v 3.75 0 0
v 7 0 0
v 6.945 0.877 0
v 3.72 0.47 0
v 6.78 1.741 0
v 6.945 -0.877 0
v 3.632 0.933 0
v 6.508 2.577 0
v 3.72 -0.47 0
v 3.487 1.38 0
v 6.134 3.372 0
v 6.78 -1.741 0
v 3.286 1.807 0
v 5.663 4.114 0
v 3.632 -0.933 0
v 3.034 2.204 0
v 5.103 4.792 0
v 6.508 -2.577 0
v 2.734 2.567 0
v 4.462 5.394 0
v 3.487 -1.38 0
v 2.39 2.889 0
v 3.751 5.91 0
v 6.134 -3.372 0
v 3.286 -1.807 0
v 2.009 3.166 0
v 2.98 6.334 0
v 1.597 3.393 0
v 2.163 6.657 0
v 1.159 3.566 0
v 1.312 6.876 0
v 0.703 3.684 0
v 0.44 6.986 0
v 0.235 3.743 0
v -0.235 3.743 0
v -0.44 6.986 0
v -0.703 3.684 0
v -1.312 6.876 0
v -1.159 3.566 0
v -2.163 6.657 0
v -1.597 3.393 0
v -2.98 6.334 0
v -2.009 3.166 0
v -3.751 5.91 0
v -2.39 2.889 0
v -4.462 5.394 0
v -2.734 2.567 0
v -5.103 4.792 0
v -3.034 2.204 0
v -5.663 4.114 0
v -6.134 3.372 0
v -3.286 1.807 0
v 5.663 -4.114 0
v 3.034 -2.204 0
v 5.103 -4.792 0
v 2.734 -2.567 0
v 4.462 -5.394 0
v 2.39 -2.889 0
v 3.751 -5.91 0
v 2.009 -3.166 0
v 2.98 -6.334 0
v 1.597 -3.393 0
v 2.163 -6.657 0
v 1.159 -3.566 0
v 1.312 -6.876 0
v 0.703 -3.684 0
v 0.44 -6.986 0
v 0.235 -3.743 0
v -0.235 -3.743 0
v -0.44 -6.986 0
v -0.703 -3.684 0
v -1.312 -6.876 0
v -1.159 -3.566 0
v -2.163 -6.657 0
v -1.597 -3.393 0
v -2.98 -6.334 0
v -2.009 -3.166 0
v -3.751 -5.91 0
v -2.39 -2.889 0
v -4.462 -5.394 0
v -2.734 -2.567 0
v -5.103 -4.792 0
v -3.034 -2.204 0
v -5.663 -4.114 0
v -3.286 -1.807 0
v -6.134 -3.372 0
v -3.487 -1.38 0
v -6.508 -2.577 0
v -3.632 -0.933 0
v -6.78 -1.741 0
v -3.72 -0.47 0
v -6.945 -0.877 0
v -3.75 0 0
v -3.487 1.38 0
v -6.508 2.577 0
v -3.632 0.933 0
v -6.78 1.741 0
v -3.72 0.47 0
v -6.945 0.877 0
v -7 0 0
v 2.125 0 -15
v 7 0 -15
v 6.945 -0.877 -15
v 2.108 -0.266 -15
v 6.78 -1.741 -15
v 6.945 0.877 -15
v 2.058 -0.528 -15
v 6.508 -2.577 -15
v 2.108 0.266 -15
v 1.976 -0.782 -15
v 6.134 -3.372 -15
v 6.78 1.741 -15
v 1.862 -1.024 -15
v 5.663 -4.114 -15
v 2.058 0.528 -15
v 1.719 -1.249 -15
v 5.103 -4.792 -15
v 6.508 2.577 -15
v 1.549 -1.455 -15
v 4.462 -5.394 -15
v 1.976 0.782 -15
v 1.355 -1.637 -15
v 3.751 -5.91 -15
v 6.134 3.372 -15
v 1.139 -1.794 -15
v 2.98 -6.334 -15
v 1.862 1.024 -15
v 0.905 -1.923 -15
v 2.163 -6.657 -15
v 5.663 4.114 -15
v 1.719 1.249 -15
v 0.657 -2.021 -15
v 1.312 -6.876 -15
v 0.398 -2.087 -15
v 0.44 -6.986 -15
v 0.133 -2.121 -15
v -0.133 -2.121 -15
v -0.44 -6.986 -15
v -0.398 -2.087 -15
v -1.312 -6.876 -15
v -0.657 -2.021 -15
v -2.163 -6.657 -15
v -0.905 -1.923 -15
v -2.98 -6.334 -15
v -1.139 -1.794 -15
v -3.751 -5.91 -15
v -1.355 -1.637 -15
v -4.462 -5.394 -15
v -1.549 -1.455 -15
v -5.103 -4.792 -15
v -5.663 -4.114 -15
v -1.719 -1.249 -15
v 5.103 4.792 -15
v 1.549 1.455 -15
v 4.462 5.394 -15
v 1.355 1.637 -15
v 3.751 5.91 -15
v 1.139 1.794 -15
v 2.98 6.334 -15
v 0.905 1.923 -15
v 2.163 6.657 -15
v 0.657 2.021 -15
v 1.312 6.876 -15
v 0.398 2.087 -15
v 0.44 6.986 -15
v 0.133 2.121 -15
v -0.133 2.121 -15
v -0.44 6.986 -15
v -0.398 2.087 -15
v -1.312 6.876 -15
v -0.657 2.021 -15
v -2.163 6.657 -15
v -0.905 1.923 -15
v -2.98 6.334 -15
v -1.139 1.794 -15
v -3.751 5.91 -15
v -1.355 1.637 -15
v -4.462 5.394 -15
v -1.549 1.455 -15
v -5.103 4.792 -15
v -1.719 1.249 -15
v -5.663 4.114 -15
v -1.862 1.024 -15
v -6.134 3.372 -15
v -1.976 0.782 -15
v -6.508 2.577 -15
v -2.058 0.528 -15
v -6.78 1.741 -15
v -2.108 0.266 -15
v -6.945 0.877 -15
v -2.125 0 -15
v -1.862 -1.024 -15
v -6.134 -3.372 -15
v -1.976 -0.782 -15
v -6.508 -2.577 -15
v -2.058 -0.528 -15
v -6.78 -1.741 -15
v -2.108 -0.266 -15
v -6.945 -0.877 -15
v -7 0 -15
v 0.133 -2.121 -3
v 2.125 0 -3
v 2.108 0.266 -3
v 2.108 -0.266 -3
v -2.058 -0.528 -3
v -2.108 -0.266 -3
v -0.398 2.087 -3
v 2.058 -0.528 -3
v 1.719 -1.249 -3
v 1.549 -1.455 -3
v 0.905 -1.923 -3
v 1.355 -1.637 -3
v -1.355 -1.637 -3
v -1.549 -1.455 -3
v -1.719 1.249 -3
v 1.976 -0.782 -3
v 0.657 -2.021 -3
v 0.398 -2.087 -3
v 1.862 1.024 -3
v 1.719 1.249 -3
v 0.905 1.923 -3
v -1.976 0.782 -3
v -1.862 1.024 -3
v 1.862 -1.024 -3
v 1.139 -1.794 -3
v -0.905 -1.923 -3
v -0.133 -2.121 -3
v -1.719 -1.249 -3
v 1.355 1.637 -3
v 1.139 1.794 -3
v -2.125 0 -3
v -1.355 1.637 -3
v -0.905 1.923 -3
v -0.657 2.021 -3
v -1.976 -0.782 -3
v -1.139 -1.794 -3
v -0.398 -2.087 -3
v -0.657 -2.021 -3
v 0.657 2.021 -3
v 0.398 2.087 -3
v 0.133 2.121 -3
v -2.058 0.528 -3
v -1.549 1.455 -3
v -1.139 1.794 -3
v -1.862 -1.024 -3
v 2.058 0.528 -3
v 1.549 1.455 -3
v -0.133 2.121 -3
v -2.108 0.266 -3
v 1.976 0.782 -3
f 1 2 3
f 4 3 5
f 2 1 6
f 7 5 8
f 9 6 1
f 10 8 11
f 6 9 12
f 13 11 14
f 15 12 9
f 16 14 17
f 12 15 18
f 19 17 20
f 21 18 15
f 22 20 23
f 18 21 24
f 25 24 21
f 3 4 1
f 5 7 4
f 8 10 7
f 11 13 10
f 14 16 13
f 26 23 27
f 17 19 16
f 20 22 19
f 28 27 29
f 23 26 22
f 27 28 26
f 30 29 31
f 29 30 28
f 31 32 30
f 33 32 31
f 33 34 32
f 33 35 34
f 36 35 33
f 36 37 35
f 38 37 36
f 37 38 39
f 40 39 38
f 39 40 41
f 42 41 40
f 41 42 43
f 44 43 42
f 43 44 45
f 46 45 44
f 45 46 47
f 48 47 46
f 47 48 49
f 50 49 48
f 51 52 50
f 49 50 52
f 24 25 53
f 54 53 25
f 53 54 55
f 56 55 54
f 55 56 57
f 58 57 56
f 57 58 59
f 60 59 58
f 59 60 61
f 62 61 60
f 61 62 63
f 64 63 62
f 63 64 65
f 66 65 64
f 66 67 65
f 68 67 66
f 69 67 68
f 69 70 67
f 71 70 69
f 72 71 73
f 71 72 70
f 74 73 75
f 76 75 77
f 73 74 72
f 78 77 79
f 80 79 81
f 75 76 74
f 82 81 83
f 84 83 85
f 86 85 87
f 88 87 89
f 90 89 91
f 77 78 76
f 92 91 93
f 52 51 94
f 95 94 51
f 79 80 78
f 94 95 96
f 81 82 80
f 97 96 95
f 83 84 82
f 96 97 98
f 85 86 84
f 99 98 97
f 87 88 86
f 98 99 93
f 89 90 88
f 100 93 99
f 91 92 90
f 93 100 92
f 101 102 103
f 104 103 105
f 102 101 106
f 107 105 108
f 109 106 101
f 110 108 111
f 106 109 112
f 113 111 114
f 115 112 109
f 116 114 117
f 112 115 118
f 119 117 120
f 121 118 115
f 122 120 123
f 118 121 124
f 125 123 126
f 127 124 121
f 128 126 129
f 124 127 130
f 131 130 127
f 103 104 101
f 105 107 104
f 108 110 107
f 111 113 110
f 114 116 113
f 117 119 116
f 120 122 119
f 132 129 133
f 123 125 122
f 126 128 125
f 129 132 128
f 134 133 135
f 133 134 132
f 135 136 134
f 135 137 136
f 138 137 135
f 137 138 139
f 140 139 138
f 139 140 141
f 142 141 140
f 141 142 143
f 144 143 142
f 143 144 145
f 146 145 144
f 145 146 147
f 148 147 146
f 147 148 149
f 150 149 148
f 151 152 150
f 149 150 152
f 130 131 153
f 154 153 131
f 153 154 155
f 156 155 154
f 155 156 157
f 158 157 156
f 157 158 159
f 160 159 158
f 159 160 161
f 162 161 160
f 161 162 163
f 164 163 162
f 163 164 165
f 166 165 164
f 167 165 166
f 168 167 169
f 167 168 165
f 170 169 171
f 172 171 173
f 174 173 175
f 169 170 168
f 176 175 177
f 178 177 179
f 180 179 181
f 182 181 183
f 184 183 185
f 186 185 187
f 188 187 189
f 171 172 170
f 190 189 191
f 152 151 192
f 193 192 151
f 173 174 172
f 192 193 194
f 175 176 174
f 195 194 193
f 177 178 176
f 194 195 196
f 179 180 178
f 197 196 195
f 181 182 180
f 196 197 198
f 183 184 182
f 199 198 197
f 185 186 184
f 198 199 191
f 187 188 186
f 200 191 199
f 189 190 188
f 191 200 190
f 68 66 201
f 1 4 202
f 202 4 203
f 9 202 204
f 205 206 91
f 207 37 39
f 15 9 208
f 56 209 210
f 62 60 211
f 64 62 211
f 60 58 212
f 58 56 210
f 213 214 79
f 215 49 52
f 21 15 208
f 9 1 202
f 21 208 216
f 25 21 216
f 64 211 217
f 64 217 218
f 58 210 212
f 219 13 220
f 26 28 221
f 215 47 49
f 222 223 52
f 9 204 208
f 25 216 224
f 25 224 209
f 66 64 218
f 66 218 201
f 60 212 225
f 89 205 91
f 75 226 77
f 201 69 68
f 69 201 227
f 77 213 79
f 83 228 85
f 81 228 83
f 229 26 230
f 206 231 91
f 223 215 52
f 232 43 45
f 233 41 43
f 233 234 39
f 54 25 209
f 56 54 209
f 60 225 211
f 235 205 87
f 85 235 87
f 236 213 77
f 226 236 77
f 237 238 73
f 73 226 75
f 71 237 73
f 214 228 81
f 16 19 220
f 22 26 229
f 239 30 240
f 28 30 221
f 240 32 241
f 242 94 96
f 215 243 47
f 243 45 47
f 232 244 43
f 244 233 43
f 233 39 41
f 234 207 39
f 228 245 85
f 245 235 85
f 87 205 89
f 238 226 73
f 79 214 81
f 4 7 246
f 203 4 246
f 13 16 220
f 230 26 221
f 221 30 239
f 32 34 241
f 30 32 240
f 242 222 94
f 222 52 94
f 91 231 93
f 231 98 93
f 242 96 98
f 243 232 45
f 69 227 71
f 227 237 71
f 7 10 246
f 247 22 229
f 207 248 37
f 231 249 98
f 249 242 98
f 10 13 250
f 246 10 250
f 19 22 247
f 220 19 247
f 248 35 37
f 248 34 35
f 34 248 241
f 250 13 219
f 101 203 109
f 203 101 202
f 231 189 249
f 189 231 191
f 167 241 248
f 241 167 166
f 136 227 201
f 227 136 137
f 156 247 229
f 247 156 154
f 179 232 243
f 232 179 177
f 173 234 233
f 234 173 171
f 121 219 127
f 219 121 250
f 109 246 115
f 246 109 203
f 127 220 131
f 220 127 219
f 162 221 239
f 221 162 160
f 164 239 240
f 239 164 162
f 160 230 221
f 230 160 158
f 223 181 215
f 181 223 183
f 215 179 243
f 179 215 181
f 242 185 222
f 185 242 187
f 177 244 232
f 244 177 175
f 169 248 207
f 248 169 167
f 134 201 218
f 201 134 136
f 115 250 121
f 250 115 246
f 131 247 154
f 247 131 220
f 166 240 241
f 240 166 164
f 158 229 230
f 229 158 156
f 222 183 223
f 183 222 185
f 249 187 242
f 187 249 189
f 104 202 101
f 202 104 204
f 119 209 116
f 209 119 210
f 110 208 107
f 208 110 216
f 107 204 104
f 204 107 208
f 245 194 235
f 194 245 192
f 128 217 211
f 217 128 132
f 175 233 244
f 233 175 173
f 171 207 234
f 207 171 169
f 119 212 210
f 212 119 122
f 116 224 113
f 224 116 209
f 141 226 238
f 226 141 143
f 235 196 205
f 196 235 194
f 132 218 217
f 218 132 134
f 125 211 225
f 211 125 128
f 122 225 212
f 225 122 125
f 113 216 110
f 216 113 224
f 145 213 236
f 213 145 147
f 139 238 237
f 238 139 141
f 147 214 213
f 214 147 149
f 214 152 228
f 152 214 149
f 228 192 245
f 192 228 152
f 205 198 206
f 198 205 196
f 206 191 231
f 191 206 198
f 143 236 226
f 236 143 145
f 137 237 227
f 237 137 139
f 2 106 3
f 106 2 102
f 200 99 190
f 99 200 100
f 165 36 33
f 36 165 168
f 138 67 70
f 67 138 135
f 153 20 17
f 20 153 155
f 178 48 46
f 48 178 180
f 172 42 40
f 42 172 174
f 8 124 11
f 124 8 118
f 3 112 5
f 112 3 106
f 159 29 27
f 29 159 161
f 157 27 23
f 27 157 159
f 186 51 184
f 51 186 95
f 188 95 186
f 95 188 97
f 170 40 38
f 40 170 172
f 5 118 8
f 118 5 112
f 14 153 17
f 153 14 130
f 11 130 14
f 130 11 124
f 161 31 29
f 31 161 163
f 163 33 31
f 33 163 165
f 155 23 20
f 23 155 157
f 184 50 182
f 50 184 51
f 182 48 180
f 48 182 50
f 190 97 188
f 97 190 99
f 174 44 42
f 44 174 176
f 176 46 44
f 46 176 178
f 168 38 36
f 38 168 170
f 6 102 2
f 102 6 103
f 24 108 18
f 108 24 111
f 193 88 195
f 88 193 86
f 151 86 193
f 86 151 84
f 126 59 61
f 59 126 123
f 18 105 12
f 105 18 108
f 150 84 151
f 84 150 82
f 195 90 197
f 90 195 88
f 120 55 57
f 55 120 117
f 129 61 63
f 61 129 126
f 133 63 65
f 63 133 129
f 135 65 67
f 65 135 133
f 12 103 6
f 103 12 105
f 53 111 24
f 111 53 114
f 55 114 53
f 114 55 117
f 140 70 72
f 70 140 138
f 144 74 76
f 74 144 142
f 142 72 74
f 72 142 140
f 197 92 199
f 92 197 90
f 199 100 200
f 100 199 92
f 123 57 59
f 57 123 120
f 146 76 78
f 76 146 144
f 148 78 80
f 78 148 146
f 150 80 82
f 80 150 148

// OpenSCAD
$fn = 50;


difference() {
	union() {
		translate(v = [0, 0, -15.0000000000]) {
			cylinder(h = 15, r = 7.0000000000);
		}
	}
	union() {
		translate(v = [0, 0, 0]) {
			rotate(a = [0, 0, 0]) {
				difference() {
					union() {
						#translate(v = [0, 0, -15.0000000000]) {
							cylinder(h = 15, r = 2.0000000000);
						}
						#translate(v = [0, 0, -3]) {
							cylinder(h = 3, r = 7.0000000000, r1 = 2.1250000000, r2 = 3.7500000000);
						}
						#translate(v = [0, 0, -15.0000000000]) {
							cylinder(h = 15, r = 2.1250000000);
						}
						#translate(v = [0, 0, -15.0000000000]) {
							cylinder(h = 15, r = 2.0000000000);
						}
					}
					union();
				}
			}
		}
	}
}
